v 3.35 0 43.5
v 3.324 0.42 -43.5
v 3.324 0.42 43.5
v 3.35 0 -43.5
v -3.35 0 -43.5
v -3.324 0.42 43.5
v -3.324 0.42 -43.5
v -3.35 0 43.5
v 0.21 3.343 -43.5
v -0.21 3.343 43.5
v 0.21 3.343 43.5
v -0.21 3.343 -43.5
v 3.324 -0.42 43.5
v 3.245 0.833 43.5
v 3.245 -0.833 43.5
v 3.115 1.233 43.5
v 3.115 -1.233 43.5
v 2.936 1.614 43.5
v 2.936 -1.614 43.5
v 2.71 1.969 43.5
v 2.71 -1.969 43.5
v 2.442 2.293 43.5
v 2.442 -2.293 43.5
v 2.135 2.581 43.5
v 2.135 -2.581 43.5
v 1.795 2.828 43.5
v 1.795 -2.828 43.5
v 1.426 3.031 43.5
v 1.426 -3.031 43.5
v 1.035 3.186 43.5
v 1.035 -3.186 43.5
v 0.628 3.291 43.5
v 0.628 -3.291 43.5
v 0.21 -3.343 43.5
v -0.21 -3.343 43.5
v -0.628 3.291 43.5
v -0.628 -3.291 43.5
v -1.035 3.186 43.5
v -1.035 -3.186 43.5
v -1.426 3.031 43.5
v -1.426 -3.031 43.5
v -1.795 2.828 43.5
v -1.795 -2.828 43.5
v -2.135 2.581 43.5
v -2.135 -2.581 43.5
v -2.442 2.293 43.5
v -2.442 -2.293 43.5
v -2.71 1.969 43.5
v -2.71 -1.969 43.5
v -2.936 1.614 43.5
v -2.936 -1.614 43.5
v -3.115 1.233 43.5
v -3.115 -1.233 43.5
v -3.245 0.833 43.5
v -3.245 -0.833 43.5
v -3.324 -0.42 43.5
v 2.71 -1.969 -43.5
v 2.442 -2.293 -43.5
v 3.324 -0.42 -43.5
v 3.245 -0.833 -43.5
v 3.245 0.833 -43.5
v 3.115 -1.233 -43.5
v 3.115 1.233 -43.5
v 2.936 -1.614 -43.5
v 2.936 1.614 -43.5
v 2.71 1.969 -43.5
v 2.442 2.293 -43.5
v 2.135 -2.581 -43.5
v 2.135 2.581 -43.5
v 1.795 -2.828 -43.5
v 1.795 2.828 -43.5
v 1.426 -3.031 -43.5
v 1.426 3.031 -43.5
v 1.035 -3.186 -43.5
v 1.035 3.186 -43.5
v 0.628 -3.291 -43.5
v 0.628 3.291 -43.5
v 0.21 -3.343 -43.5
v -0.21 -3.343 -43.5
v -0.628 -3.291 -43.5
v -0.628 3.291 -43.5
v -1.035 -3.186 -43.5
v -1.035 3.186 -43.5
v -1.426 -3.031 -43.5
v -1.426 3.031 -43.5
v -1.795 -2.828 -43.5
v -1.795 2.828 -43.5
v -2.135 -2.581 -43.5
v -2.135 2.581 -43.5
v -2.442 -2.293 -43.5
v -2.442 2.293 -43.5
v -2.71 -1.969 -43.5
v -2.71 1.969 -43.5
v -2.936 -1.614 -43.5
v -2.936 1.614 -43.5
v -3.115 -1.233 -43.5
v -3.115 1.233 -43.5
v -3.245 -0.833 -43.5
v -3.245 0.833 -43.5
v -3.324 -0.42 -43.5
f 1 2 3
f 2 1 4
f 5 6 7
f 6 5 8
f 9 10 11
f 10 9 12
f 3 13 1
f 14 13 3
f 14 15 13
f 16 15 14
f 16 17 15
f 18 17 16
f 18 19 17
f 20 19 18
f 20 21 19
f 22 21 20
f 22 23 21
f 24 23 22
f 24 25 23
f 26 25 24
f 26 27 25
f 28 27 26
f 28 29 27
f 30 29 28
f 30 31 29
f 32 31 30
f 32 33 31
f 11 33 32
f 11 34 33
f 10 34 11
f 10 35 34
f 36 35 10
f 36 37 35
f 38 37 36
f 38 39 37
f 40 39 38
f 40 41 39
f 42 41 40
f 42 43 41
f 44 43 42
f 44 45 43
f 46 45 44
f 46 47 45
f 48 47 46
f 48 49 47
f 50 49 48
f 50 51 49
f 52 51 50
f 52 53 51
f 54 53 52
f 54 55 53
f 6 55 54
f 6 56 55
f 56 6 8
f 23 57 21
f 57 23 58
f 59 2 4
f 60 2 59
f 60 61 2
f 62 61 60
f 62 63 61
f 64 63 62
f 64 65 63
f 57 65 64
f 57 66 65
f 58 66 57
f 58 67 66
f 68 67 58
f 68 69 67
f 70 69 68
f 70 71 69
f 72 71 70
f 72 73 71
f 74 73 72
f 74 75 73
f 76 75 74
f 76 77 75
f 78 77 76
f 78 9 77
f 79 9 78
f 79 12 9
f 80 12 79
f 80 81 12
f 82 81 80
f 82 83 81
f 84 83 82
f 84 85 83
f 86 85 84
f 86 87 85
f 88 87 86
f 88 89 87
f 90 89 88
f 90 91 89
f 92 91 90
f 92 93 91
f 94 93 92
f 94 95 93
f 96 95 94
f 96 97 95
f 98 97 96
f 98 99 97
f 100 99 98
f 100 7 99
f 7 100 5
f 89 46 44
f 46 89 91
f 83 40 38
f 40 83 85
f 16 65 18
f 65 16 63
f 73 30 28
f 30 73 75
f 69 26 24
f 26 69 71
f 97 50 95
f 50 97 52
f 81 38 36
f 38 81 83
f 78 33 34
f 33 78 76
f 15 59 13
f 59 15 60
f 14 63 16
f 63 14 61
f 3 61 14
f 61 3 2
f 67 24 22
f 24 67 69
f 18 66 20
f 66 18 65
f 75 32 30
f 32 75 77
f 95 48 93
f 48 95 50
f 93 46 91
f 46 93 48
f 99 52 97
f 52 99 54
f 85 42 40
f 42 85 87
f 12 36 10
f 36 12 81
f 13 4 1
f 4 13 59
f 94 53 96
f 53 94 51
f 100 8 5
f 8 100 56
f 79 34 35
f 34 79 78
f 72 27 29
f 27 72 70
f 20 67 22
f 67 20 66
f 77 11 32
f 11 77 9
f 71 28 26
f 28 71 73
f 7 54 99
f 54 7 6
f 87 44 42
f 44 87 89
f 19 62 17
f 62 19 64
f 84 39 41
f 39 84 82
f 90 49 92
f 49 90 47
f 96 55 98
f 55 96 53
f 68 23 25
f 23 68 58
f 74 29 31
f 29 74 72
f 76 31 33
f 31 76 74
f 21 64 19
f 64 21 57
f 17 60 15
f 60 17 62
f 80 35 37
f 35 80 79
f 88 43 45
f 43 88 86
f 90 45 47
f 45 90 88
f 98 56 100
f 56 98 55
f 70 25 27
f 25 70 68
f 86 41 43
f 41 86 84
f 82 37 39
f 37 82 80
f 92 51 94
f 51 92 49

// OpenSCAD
$fn = 50;


difference() {
	union() {
		translate(v = [0, 0, -43.5000000000]) {
			cylinder(h = 87, r = 3.3500000000);
		}
	}
	union() {
		translate(v = [0, 0, -100.0000000000]) {
			cylinder(h = 200, r = 0);
		}
	}
}
